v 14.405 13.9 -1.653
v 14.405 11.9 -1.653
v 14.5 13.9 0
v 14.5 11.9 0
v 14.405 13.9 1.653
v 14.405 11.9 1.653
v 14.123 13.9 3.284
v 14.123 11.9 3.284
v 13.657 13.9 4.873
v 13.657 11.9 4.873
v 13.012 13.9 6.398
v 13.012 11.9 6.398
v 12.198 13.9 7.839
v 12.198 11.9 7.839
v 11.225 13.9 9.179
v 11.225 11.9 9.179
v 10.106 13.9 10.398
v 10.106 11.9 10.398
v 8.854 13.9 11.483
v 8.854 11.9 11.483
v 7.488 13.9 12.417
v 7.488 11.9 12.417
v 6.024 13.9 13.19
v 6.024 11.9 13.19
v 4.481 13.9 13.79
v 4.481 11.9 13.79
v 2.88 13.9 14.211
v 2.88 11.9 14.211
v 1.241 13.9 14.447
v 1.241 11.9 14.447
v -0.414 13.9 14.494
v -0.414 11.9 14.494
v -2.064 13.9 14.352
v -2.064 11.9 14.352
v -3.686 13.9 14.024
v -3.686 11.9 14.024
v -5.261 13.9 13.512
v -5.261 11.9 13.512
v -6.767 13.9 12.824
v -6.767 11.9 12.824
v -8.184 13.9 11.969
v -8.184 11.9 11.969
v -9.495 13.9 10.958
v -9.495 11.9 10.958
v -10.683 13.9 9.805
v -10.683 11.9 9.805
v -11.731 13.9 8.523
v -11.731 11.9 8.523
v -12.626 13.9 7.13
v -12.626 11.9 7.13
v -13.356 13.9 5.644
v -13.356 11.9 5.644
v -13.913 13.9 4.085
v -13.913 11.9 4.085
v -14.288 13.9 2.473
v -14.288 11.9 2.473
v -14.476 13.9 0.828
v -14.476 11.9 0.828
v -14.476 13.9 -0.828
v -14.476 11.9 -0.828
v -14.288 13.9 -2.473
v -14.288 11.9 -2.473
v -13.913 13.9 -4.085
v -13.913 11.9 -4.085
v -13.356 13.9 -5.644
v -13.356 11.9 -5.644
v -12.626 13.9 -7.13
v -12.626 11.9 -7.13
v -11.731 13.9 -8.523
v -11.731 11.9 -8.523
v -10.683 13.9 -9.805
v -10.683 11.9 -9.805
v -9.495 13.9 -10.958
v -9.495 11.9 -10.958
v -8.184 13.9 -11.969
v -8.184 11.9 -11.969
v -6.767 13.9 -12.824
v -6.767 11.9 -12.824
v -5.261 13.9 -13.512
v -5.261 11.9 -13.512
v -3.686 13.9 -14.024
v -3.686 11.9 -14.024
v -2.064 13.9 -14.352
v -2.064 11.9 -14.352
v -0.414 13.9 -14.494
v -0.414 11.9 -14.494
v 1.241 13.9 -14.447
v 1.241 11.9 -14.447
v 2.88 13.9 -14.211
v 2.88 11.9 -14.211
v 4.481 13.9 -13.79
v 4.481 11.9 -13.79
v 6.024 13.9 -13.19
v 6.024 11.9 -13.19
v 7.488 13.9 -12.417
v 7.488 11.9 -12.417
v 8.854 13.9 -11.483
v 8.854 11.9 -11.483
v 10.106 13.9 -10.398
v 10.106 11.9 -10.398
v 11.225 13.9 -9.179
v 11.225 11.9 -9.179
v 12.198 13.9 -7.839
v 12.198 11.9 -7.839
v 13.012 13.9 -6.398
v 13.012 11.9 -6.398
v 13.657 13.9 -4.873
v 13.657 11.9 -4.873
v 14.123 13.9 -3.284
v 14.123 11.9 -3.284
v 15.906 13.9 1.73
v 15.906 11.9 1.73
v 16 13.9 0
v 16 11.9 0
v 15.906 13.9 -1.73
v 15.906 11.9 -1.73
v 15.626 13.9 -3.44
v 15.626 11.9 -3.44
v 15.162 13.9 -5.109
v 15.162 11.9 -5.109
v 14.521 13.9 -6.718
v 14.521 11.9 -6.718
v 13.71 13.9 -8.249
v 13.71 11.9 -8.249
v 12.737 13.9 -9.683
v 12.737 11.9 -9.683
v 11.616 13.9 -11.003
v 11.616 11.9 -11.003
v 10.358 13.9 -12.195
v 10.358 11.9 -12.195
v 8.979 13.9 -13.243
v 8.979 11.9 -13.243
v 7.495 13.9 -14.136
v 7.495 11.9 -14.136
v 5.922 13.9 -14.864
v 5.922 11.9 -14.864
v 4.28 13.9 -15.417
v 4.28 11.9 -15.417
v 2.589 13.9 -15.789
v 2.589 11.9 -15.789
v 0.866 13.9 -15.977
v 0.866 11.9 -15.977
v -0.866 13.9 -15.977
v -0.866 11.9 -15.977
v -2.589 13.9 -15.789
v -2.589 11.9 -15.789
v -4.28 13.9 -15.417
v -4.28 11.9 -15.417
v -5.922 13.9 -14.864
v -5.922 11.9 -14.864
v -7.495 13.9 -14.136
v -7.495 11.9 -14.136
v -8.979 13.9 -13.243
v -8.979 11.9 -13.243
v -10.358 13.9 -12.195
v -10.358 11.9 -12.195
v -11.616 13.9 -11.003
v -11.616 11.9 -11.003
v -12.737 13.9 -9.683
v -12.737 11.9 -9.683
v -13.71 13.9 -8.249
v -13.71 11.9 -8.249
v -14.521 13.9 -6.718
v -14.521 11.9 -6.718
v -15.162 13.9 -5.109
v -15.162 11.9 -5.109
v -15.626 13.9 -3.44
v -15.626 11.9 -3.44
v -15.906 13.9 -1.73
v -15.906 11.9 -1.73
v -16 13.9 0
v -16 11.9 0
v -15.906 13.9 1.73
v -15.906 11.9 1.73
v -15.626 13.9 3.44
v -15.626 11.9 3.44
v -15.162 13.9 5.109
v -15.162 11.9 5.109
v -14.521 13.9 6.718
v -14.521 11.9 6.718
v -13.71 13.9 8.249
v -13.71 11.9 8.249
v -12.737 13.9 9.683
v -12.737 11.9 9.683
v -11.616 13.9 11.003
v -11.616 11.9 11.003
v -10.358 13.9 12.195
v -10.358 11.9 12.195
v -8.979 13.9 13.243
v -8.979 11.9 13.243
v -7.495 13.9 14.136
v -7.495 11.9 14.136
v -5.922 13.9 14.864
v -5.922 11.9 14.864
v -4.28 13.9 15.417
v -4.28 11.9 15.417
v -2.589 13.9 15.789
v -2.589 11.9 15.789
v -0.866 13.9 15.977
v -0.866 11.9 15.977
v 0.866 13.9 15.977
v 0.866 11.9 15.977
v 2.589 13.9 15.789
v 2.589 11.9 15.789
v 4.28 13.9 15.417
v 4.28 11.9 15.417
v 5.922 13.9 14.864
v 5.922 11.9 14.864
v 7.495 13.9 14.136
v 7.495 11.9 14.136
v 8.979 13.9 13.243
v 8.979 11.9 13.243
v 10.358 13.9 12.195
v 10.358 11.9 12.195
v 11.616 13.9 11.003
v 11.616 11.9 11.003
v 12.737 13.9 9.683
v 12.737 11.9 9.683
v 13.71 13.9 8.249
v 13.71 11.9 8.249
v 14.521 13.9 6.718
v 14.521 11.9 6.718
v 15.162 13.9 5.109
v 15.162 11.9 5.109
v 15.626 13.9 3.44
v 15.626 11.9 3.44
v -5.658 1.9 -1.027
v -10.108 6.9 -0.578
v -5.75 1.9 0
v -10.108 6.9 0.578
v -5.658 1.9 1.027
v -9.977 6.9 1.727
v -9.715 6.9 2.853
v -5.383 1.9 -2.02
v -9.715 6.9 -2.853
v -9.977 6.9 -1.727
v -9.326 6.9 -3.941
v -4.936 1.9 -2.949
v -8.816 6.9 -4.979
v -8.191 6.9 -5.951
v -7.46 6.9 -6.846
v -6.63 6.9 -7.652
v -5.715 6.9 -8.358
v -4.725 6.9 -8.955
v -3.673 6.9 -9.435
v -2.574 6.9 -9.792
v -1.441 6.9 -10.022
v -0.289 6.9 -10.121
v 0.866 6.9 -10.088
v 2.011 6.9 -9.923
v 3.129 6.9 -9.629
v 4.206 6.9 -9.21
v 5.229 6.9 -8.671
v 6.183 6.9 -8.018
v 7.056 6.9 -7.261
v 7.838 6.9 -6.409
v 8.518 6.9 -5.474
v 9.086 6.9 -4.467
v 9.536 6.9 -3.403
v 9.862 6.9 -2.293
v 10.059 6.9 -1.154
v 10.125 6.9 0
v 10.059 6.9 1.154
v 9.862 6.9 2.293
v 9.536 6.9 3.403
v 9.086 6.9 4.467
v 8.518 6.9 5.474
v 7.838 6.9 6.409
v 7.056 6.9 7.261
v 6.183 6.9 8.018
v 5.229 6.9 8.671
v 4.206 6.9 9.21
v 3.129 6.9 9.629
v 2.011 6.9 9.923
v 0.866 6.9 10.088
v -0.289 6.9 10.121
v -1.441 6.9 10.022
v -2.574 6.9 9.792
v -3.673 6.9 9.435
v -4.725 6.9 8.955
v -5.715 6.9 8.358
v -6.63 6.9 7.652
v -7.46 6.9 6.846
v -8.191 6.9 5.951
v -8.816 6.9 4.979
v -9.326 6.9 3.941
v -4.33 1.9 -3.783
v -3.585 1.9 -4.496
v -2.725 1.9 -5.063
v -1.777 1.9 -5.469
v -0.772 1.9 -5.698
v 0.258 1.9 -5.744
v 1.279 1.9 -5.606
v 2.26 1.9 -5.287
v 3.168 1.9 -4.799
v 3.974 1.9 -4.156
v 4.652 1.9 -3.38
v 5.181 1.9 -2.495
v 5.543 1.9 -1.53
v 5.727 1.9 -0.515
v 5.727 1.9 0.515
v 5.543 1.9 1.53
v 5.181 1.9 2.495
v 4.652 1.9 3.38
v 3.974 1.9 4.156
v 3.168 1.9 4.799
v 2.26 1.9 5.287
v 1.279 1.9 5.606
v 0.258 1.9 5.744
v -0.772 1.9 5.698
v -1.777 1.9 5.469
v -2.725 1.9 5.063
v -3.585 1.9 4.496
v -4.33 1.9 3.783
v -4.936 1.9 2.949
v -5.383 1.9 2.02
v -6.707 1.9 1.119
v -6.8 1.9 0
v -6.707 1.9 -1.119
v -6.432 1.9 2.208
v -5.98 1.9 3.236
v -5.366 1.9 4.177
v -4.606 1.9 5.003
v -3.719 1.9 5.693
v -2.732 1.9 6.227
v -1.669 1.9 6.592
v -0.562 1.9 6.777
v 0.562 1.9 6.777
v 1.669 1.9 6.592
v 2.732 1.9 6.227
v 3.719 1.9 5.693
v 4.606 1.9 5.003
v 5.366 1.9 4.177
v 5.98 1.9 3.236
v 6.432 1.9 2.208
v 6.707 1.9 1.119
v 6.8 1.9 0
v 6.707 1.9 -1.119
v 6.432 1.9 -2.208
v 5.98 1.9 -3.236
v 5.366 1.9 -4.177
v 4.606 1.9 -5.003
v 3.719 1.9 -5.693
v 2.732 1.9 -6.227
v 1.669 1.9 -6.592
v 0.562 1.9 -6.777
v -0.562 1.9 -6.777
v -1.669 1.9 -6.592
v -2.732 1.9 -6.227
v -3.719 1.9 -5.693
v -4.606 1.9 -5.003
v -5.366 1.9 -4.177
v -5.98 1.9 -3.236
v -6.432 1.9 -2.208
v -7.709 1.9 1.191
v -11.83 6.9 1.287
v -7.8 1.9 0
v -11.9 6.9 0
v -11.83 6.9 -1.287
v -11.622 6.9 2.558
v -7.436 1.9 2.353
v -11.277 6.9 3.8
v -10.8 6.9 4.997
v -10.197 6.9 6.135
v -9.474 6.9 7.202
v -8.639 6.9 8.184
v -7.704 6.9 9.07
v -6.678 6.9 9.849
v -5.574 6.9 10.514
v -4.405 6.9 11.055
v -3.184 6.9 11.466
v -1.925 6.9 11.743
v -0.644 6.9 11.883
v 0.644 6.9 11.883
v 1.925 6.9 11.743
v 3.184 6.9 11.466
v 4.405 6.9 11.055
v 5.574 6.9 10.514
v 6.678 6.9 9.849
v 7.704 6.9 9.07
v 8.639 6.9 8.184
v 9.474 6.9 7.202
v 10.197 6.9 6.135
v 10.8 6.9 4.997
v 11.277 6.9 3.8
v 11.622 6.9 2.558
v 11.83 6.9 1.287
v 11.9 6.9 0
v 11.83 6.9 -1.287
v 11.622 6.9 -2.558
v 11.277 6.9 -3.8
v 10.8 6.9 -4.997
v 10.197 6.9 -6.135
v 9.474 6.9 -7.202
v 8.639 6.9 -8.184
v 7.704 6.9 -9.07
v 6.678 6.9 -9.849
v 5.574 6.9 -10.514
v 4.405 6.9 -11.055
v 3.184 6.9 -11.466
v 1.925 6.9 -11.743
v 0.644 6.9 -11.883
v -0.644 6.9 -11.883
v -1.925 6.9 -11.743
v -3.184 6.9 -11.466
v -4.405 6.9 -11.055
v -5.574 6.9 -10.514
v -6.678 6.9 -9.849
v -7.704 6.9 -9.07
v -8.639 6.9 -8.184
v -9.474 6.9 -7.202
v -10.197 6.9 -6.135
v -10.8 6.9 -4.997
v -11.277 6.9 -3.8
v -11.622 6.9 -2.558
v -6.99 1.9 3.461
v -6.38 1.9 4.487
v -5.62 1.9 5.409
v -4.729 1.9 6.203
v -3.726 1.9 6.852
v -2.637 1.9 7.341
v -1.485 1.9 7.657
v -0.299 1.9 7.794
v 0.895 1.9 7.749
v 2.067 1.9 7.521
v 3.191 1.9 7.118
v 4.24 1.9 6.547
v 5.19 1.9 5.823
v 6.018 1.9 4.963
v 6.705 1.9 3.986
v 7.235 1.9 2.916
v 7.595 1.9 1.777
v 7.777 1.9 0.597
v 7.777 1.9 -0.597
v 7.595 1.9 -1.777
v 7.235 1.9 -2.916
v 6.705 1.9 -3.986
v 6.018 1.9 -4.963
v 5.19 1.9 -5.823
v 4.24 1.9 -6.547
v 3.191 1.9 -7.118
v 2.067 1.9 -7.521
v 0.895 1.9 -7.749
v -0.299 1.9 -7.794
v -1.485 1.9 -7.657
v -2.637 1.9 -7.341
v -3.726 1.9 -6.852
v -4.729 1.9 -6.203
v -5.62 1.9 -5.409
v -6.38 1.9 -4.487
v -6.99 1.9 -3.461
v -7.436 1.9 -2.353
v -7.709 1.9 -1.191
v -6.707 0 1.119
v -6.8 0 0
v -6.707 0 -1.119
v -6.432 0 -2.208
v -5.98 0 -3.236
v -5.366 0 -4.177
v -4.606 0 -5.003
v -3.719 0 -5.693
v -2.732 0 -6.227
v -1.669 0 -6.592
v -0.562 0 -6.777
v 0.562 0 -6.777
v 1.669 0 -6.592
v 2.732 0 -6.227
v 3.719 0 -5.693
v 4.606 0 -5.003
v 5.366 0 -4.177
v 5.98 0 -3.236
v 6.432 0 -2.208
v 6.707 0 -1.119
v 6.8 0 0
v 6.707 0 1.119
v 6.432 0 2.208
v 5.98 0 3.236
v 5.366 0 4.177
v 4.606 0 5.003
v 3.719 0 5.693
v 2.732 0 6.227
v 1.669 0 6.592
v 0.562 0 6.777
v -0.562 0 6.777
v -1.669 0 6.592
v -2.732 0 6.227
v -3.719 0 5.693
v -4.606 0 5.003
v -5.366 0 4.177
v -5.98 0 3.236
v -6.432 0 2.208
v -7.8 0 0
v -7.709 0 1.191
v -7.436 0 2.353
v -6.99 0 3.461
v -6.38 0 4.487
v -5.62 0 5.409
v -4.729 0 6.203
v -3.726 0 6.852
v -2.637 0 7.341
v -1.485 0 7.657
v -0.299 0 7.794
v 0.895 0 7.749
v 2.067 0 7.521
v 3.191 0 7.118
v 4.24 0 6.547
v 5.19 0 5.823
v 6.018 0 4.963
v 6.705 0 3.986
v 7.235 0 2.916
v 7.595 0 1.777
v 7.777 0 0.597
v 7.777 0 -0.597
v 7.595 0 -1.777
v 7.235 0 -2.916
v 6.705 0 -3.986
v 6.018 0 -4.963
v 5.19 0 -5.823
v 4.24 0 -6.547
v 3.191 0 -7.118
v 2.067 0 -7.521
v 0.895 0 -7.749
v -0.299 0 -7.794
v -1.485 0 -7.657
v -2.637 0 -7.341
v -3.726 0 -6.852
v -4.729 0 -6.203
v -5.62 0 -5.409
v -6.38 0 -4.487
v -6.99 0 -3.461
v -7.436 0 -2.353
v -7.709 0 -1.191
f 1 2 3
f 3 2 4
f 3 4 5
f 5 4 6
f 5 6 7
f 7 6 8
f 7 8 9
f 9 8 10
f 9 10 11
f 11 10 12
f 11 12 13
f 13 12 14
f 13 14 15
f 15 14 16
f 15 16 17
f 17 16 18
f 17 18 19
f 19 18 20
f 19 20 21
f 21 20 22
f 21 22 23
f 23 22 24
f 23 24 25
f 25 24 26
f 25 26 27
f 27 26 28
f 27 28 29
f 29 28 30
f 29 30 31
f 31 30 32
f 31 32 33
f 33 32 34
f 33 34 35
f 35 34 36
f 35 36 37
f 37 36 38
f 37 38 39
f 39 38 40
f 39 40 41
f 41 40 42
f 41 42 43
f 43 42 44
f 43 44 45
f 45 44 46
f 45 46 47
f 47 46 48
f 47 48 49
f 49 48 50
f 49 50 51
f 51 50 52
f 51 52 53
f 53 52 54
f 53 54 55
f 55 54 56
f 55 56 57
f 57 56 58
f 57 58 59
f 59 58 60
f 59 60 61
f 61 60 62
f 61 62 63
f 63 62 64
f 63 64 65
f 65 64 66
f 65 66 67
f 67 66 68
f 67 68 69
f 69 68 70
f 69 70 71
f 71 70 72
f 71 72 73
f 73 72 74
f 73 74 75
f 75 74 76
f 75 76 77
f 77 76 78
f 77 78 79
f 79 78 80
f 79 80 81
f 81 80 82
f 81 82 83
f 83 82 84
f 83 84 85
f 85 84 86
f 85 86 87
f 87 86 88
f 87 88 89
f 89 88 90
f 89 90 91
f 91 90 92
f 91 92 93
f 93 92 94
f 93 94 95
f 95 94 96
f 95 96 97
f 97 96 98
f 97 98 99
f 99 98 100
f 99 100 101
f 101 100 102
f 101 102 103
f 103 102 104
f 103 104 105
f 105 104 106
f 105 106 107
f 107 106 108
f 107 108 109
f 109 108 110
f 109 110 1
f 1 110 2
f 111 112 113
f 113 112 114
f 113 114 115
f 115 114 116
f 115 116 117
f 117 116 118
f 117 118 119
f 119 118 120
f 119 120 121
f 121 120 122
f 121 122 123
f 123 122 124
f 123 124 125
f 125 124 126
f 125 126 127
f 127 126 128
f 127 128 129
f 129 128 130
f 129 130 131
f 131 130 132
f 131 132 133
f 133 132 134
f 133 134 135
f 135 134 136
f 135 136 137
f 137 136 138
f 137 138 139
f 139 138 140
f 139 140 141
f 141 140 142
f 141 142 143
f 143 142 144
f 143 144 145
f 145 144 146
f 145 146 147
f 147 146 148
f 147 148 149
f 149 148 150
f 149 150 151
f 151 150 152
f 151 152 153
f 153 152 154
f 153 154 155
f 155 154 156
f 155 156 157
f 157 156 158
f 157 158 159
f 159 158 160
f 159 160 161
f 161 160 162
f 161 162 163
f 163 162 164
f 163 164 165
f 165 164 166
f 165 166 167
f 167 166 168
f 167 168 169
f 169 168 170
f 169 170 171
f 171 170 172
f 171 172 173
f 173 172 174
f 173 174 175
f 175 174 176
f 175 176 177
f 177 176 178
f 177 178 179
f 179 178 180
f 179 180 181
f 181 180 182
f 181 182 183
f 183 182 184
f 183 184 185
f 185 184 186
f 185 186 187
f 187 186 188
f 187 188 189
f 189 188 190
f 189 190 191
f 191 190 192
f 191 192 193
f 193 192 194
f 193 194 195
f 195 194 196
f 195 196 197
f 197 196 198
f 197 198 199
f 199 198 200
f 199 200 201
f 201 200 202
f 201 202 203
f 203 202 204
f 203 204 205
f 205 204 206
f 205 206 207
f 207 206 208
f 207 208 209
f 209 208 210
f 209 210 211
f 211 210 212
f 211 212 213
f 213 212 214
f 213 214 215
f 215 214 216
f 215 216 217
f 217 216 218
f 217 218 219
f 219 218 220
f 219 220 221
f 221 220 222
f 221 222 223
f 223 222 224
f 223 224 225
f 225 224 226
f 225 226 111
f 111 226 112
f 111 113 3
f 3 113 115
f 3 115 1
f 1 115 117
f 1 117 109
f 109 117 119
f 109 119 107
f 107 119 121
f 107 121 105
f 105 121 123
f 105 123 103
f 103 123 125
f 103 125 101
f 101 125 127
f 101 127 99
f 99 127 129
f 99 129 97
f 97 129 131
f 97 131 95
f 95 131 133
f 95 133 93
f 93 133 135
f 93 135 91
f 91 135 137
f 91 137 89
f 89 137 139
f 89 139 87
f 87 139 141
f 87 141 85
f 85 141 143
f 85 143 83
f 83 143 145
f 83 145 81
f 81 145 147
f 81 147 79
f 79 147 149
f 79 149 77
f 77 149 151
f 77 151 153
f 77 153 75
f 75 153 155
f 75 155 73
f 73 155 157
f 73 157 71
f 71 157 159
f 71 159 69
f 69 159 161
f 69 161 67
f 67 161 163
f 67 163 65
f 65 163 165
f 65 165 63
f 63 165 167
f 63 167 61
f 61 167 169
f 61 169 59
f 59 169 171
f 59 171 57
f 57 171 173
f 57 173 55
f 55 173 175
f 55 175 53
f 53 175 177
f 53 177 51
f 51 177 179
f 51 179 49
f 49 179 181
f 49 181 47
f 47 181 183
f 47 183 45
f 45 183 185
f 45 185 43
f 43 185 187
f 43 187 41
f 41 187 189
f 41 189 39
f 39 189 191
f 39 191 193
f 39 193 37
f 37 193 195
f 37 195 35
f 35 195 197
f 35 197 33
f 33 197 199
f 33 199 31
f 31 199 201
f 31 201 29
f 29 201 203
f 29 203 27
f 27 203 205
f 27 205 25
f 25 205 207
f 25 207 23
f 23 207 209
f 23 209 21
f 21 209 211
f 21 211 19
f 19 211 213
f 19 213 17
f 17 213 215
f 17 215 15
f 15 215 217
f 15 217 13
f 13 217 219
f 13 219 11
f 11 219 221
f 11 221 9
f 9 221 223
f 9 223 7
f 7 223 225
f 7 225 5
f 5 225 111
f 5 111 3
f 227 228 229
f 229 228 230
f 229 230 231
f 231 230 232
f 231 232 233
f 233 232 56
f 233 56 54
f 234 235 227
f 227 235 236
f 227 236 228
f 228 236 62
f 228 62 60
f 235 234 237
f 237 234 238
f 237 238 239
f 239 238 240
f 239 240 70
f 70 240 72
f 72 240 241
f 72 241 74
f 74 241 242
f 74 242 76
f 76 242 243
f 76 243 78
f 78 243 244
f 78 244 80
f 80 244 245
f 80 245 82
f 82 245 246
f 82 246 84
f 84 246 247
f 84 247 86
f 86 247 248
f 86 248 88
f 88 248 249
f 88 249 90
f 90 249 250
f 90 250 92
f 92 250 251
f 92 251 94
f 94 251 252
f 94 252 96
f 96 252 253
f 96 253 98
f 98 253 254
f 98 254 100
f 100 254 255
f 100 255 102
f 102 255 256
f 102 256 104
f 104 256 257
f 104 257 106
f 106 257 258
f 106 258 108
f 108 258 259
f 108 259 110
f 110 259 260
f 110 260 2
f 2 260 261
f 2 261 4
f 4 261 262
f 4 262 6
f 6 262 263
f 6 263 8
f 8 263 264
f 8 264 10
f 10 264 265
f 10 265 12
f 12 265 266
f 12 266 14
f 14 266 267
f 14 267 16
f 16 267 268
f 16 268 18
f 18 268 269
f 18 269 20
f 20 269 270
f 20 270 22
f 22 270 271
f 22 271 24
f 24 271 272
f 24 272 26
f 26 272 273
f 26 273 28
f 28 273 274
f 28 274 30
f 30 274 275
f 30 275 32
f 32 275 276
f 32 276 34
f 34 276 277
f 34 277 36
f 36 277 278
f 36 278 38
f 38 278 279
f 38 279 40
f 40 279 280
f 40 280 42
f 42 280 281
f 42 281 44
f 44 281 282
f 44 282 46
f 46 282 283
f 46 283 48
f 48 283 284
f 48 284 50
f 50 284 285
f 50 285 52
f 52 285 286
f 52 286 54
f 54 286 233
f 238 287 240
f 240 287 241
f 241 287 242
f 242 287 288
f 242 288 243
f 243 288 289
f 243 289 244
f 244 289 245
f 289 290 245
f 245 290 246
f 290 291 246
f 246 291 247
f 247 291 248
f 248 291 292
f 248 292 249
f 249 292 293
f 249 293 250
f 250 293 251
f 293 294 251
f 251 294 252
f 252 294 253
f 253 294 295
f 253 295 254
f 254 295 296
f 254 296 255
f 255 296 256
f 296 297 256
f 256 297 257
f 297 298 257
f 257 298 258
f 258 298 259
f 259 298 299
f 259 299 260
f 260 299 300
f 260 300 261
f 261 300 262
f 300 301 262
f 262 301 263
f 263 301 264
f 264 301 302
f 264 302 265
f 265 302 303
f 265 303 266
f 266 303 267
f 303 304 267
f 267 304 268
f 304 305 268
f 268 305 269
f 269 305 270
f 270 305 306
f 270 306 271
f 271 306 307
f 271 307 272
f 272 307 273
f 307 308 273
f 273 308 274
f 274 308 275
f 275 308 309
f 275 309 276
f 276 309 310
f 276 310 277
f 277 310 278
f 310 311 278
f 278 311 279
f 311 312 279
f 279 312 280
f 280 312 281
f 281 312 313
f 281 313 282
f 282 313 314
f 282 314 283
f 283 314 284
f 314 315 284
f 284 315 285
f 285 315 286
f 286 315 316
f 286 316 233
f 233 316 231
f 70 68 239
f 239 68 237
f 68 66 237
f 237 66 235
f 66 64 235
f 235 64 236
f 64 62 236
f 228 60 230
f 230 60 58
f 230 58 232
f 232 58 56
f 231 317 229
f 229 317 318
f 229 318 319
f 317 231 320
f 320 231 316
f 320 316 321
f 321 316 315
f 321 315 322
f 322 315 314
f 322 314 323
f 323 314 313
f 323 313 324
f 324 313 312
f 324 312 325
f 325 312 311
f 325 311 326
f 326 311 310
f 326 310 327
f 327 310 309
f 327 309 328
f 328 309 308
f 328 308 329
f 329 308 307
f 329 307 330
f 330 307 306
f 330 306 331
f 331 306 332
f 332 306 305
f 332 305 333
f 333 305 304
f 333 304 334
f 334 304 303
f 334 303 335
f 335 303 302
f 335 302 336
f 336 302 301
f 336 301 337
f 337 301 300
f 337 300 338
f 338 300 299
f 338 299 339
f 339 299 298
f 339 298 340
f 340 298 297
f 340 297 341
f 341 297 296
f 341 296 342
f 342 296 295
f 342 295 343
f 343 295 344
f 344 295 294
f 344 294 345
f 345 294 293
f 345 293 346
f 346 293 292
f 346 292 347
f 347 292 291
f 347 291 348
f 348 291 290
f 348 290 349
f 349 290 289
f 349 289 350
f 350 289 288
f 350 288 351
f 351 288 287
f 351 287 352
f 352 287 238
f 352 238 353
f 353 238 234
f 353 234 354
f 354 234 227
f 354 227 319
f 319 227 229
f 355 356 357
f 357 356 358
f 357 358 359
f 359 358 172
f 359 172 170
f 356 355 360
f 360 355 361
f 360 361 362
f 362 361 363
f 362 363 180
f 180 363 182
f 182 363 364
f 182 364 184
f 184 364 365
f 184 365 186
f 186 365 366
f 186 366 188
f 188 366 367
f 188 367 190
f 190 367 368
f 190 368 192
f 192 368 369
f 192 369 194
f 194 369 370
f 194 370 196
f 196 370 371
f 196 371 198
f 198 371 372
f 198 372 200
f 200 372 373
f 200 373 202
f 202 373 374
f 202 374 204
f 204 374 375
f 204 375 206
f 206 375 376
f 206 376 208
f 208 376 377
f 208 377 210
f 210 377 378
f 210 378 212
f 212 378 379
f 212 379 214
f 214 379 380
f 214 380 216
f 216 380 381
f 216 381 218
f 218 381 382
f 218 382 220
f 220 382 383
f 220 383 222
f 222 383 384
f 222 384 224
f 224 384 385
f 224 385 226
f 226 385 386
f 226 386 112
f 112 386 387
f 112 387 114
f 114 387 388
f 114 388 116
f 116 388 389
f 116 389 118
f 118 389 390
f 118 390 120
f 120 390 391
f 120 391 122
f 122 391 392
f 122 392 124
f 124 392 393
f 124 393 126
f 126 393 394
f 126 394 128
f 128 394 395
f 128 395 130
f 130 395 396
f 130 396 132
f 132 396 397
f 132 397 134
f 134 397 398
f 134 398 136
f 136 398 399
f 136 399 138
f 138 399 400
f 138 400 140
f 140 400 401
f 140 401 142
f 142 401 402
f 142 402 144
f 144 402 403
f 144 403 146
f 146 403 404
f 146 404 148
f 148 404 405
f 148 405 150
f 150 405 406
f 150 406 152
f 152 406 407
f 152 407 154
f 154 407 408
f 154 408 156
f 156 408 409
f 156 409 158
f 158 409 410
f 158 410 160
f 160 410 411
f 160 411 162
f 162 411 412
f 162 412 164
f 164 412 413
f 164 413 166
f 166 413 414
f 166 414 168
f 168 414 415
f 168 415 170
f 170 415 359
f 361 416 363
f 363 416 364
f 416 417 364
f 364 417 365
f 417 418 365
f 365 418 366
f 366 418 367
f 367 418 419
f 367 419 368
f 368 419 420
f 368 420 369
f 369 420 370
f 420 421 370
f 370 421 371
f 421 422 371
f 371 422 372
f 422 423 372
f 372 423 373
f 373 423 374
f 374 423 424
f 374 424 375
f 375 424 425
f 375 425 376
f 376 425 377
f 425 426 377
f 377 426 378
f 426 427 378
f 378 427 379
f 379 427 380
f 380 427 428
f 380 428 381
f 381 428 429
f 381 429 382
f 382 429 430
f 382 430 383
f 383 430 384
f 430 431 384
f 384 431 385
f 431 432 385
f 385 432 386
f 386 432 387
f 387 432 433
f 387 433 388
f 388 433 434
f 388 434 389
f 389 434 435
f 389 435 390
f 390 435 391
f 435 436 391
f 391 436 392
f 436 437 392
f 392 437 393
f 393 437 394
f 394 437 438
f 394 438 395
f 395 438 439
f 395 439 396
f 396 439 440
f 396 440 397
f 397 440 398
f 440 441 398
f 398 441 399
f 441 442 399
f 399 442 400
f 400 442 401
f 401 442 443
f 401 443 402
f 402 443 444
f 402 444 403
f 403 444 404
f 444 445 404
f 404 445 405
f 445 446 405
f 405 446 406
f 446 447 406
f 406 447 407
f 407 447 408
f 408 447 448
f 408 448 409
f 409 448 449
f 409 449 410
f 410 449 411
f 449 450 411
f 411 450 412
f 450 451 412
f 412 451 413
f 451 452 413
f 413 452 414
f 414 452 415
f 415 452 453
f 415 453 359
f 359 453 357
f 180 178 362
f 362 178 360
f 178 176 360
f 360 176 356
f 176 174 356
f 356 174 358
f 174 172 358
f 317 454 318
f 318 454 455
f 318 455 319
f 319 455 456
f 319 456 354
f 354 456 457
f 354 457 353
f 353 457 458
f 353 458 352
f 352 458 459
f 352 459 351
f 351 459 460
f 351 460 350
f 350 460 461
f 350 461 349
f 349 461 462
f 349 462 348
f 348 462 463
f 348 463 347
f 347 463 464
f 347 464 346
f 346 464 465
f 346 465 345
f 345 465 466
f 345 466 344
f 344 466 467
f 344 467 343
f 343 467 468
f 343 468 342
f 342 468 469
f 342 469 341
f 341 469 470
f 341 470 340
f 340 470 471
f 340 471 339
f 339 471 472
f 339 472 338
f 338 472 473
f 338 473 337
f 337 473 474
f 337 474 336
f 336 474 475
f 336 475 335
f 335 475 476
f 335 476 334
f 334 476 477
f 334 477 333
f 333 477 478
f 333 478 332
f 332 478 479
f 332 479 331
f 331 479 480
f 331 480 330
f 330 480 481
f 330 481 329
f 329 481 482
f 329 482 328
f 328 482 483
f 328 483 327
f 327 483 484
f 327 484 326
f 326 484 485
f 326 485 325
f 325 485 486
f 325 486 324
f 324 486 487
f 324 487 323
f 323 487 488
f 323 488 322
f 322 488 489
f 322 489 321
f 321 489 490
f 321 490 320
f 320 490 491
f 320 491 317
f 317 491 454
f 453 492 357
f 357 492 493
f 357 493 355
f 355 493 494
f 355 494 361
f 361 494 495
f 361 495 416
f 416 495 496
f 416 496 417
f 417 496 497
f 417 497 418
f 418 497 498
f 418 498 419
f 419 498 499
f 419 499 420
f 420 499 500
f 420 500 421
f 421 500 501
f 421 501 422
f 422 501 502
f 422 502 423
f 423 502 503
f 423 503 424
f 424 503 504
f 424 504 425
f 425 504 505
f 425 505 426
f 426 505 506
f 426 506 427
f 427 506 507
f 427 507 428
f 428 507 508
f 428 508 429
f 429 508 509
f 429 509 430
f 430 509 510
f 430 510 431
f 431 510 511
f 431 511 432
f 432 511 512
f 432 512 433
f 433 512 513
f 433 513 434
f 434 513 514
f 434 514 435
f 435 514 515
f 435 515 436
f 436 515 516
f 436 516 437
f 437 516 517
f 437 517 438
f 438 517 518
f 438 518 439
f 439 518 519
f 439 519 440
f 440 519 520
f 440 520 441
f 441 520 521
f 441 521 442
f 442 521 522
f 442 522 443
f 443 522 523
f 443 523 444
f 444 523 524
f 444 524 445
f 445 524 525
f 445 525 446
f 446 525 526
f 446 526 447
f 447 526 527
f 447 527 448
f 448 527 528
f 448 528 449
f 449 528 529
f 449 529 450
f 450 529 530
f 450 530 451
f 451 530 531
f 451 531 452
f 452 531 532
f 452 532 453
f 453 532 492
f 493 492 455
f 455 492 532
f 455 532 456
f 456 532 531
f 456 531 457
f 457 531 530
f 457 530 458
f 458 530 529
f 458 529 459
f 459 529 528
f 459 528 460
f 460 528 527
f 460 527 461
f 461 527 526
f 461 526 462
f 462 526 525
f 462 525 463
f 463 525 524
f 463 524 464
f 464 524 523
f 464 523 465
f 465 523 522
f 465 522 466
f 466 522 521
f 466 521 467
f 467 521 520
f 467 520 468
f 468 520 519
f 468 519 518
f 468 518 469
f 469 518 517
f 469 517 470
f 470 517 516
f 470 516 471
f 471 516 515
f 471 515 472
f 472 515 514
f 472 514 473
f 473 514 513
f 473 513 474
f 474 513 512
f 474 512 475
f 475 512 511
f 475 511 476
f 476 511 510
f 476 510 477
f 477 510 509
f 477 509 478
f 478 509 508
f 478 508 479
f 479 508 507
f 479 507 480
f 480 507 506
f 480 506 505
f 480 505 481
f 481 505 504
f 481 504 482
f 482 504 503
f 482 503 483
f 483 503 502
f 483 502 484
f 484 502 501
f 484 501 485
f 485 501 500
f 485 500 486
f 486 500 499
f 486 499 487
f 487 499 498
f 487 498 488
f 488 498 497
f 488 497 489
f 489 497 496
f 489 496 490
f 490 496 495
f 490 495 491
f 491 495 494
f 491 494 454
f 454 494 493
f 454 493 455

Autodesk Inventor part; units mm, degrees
ref_plane "YZ Plane" through (0, 0, 0) normal (1, 0, 0) x (0, 1, 0)
ref_plane "XZ Plane" through (0, 0, 0) normal (0, 1, 0) x (-1, 0, 0)
sketch "Sketch1" plane through (0, 0, 0) normal (0, 1, 0) x (-1, 0, 0)
  circle A0 centre (0, 0) radius 6.8
  circle A1 centre (0, 0) radius 7.8
  dimension "d0" = 13.6
  dimension "d1" = 15.6
extrude "Extrusion1" add sketch "Sketch1" along normal blind 1.9
sketch "Sketch2" plane through (0, 1.9, 0) normal (0, 1, 0) x (1, 0, 0)
  circle A0 centre (0, 0) radius 7.8
  dimension "d20" = 15.6
ref_plane "Work Plane1" through (0, 11.9, 0) normal (0, 1, 0) x (1, 0, 0)
sketch "Sketch3" plane through (0, 11.9, 0) normal (0, 1, 0) x (1, 0, 0)
  circle A0 centre (0, 0) radius 16
  dimension "d6" = 32
loft "Loft1" add profiles "Sketch3" section 1 edges at (7.8, 1.9, 0)
sketch "Sketch4" plane through (0, 1.9, 0) normal (0, -1, 0) x (1, 0, 0)
  circle A0 centre (0, 0) radius 5.75
  dimension "d12" = 11.5
sketch "Sketch5" plane through (0, 11.9, 0) normal (0, 1, 0) x (1, 0, 0)
  circle A0 centre (0, 0) radius 14.5
  dimension "d13" = 29
loft "Loft2" cut profiles "Sketch4", "Sketch5"
sketch "Sketch6" plane through (0, 11.9, 0) normal (0, 1, 0) x (1, 0, 0)
  circle A0 centre (0, 0) radius 14.5
  circle A1 centre (0, 0) radius 16
  dimension "d21" = 32
  dimension "d22" = 29
extrude "Extrusion2" add sketch "Sketch6" along normal blind 2
properties part number "Widefield_LightShield_Cone"
